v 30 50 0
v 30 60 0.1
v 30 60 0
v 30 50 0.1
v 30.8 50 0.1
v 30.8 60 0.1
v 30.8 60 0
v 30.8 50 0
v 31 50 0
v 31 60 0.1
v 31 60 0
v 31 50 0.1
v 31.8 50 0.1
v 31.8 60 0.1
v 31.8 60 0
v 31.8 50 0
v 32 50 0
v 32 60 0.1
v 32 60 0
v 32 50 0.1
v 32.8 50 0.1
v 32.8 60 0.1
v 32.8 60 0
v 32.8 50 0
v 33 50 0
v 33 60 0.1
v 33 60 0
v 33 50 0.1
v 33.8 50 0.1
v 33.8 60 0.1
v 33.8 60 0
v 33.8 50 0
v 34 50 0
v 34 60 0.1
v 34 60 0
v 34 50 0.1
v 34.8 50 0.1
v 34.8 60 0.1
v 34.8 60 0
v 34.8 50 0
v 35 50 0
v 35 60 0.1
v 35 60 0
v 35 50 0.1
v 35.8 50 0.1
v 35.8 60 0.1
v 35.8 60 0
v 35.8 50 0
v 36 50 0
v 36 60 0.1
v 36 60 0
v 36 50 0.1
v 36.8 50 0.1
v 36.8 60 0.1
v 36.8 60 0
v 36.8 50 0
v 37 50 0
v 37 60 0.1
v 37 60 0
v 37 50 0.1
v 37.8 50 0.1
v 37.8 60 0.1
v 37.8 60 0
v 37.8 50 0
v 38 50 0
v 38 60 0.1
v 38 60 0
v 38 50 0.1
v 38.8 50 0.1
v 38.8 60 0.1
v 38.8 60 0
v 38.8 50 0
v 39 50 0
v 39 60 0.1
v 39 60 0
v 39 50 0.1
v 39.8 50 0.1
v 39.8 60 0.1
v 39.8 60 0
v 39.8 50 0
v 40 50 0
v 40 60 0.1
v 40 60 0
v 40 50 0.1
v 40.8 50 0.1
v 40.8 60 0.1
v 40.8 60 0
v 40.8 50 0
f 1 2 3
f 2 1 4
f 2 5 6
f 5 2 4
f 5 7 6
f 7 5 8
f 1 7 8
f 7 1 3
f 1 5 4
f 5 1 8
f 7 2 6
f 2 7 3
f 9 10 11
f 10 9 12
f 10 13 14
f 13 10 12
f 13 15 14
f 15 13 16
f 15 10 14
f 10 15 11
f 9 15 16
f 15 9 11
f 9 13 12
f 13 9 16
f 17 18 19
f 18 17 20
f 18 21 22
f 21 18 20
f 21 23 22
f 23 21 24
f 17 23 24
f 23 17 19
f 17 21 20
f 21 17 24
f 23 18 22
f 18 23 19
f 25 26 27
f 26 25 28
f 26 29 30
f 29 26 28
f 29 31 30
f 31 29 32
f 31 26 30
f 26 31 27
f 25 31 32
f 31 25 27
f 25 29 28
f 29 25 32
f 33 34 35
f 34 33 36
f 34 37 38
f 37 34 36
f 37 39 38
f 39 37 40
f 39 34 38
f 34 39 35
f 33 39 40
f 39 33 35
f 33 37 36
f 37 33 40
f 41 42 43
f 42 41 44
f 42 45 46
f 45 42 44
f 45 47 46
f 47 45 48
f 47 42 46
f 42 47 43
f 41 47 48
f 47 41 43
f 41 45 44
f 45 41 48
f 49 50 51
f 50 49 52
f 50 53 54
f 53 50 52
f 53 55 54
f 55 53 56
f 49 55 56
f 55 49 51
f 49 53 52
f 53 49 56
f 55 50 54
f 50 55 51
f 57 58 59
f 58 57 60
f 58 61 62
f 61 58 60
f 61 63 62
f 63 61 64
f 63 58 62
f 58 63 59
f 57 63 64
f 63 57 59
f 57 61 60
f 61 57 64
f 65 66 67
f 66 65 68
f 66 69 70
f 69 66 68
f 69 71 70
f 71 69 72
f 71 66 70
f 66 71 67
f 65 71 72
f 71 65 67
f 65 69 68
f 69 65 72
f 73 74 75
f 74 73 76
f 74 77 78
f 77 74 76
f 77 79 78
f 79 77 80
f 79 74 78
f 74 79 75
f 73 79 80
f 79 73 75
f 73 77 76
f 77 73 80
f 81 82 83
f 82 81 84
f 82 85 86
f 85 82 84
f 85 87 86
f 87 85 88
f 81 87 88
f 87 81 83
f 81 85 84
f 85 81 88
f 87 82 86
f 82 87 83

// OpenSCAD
translate([10+20,10+40,0])
        for (i = [0 : 10]){
            translate([i,0,0])
                cube(size = [0.8,10,0.1]);
    }
